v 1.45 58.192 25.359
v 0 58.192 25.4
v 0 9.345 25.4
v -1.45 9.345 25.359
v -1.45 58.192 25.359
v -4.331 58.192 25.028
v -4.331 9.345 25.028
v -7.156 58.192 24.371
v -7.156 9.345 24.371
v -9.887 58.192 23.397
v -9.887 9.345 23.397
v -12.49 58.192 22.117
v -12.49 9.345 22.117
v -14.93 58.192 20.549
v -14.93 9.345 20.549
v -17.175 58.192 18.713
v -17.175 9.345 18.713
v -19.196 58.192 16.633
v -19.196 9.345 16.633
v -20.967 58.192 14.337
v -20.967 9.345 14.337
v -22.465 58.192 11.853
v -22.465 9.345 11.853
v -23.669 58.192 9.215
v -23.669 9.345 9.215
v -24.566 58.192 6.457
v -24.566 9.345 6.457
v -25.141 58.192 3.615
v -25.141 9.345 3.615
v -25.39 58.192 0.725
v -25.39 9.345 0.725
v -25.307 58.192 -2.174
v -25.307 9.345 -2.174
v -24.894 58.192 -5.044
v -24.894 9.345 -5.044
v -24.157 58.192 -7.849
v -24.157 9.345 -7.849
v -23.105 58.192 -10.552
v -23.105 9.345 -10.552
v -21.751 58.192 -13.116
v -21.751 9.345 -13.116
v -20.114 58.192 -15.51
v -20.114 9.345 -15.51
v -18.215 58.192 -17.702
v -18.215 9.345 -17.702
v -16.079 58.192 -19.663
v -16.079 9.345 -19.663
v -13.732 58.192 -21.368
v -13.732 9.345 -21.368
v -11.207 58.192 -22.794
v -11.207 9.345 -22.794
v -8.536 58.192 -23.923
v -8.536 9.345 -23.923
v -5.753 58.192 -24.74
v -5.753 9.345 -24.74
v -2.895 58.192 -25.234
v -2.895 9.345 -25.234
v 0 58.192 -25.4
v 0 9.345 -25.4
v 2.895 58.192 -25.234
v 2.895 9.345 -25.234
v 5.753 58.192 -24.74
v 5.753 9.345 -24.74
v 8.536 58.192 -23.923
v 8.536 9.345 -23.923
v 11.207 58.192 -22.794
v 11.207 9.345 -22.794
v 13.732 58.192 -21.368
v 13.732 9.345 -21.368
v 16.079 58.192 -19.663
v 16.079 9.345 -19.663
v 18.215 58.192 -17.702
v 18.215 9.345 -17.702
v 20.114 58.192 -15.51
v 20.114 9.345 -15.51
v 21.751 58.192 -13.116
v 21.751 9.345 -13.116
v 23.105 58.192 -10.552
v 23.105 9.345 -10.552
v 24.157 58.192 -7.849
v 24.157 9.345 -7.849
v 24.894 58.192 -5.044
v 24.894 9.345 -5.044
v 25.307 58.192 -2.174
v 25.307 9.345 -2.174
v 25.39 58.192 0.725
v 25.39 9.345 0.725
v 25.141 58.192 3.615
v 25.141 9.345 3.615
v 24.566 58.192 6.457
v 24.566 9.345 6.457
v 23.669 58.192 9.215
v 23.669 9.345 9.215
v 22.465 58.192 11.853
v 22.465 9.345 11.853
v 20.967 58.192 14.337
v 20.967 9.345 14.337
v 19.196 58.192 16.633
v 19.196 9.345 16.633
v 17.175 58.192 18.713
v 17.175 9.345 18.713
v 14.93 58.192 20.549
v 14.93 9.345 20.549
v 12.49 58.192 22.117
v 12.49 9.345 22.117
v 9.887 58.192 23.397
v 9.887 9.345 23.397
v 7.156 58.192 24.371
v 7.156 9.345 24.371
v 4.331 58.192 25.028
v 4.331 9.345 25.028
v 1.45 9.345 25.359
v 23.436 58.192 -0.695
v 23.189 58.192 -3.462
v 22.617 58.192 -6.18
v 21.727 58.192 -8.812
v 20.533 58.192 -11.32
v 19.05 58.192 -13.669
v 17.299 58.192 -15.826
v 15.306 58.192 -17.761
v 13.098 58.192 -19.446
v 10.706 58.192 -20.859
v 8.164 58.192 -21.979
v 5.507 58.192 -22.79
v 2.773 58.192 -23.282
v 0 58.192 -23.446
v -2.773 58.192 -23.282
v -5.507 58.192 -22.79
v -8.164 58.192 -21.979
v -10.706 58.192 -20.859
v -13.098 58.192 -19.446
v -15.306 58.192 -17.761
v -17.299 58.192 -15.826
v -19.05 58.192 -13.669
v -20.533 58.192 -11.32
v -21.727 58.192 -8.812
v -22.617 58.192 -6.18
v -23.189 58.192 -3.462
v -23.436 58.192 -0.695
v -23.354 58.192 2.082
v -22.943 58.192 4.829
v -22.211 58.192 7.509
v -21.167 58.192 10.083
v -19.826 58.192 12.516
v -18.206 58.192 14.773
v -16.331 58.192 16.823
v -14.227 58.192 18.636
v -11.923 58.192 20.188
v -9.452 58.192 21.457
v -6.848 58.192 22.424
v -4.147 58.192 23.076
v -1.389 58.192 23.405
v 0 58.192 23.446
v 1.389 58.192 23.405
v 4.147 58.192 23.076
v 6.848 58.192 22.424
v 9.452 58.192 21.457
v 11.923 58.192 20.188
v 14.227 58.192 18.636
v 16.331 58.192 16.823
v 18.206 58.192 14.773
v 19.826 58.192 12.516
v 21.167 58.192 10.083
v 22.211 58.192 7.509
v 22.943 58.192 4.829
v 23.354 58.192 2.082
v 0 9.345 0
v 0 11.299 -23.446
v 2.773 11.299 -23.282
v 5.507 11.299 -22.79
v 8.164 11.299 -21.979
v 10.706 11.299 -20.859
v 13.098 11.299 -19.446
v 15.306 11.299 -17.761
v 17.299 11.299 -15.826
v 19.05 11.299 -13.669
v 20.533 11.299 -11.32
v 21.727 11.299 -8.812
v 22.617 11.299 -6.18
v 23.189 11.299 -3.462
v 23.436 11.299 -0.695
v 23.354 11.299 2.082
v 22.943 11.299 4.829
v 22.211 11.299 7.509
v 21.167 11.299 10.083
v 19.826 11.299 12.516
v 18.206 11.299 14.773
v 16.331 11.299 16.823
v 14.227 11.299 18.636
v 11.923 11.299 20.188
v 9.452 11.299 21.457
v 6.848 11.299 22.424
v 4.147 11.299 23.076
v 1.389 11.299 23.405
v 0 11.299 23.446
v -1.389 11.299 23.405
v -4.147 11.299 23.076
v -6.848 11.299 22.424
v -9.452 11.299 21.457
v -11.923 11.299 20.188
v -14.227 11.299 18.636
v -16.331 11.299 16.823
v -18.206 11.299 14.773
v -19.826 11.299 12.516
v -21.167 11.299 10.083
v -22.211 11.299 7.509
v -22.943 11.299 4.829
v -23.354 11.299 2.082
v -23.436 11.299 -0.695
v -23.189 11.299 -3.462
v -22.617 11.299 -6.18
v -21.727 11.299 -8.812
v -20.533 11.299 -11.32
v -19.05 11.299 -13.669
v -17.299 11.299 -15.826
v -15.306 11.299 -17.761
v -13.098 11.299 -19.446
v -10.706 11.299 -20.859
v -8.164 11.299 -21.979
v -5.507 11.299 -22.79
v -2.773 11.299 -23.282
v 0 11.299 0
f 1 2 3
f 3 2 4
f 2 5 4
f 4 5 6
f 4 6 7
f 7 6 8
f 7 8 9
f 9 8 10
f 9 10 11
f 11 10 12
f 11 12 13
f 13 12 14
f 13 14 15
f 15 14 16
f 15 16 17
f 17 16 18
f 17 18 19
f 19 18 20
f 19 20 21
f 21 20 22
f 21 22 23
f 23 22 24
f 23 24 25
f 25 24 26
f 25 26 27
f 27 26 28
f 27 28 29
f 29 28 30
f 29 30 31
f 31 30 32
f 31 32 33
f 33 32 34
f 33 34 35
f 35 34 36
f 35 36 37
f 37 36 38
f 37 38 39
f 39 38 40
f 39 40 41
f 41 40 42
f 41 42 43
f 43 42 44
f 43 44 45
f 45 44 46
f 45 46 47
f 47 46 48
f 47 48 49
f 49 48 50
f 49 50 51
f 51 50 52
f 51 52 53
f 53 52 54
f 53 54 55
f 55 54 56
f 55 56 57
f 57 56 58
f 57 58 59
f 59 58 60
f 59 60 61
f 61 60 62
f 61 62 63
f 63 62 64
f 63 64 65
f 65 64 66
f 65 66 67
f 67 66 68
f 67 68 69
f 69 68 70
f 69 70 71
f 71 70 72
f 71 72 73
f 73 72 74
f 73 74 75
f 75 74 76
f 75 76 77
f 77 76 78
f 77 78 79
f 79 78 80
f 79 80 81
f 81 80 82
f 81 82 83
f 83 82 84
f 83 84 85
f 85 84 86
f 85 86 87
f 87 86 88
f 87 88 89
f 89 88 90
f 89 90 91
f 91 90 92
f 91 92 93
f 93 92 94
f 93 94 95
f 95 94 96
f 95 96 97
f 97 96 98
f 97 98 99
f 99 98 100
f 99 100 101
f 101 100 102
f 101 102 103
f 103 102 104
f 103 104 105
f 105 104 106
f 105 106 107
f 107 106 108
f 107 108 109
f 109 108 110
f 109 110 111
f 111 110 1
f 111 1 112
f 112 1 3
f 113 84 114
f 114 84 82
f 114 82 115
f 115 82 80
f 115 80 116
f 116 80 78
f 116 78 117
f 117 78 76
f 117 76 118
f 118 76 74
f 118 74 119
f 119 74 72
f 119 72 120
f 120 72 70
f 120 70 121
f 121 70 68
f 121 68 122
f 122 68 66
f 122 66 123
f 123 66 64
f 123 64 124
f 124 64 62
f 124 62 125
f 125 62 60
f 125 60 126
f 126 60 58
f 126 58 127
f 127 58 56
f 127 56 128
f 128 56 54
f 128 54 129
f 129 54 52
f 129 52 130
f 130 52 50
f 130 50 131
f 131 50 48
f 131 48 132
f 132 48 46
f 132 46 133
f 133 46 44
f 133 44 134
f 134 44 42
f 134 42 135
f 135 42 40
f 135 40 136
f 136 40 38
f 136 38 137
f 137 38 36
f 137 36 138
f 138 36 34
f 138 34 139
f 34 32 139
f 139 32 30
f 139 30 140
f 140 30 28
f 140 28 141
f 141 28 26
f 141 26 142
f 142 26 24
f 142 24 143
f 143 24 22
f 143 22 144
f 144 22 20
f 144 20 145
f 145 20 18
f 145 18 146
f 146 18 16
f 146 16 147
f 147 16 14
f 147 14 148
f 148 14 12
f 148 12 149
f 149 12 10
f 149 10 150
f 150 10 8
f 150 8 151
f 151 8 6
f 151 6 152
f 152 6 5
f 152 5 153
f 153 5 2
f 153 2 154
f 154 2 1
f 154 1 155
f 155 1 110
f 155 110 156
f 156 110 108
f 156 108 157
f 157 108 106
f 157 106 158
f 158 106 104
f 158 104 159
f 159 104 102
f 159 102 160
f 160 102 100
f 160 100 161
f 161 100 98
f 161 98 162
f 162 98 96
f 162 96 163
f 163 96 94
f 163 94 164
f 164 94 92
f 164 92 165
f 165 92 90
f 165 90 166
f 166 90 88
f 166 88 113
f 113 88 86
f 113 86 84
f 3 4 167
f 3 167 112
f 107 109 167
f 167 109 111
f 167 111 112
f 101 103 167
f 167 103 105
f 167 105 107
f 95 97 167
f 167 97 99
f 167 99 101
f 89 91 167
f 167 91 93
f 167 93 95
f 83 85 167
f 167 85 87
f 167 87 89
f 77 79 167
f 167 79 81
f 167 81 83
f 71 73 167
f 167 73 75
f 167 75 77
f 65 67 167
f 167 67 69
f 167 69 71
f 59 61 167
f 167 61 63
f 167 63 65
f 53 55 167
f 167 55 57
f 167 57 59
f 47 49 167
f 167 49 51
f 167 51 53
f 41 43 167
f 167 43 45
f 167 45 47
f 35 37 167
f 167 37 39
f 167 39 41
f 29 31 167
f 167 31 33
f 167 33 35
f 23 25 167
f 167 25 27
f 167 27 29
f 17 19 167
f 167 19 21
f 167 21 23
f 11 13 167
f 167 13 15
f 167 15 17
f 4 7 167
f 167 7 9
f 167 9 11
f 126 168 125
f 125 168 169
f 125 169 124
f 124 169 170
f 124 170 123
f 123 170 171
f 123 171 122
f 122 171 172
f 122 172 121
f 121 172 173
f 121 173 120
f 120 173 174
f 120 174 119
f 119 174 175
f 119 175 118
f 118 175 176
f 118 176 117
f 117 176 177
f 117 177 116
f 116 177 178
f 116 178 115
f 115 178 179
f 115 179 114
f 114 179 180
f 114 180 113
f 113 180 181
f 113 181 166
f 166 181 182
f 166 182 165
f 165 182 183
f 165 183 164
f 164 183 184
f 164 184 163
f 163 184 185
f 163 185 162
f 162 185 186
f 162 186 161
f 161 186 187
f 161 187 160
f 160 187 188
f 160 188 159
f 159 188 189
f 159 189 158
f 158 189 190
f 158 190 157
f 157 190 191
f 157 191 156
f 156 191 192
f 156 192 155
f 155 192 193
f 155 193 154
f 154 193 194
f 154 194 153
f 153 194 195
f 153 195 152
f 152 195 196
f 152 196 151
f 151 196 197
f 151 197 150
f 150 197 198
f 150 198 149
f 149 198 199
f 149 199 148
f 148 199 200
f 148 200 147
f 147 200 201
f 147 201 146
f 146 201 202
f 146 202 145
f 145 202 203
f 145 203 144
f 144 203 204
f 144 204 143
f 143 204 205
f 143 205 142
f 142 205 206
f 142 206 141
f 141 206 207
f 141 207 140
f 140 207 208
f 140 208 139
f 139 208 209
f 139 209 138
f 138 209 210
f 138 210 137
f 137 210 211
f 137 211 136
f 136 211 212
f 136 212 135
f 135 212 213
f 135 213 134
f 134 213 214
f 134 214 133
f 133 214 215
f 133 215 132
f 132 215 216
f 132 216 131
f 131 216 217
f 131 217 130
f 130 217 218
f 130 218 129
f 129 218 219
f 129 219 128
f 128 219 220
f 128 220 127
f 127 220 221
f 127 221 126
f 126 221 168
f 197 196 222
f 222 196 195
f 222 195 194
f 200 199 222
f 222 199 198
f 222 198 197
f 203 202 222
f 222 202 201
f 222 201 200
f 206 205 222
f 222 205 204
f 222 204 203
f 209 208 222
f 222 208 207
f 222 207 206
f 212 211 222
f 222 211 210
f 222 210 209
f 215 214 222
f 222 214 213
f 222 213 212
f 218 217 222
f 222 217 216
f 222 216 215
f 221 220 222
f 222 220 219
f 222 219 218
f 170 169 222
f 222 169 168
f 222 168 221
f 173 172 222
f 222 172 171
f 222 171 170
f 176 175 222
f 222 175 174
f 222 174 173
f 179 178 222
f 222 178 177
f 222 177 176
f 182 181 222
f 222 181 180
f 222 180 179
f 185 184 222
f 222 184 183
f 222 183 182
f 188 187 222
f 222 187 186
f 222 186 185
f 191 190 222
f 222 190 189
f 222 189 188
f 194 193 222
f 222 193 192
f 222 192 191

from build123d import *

# Parameters (mm, degrees)
SKETCH1_R           = 38.1
BOSS_EXTRUDE1_DEPTH = 76.2
SHELL2_T            = 3.175
SCALE1_SCALE        = 0.615384615


with BuildPart() as part:
    # Sketch1 → Boss-Extrude1 (new body)
    with BuildSketch(Plane(origin=(0, 0, 0), x_dir=(1, 0, 0), z_dir=(0, 1, 0))):
        with Locations(Location((0, 0, 0), (0, 0, 90))):
            Circle(SKETCH1_R)
    extrude(amount=BOSS_EXTRUDE1_DEPTH)

    # Shell2
    shell2_openings = [part.faces().sort_by_distance(p)[0] for p in [
        (0, 76.2, 0),
    ]]
    offset(amount=SHELL2_T, openings=shell2_openings, kind=Kind.INTERSECTION)


with BuildPart() as part_1:
    # Scale1: scaled about (0, 29.378039662, 0)
    add(part.part.scale(SCALE1_SCALE).moved(Location((0, 11.299246024, 0))))


solid = part_1.part
